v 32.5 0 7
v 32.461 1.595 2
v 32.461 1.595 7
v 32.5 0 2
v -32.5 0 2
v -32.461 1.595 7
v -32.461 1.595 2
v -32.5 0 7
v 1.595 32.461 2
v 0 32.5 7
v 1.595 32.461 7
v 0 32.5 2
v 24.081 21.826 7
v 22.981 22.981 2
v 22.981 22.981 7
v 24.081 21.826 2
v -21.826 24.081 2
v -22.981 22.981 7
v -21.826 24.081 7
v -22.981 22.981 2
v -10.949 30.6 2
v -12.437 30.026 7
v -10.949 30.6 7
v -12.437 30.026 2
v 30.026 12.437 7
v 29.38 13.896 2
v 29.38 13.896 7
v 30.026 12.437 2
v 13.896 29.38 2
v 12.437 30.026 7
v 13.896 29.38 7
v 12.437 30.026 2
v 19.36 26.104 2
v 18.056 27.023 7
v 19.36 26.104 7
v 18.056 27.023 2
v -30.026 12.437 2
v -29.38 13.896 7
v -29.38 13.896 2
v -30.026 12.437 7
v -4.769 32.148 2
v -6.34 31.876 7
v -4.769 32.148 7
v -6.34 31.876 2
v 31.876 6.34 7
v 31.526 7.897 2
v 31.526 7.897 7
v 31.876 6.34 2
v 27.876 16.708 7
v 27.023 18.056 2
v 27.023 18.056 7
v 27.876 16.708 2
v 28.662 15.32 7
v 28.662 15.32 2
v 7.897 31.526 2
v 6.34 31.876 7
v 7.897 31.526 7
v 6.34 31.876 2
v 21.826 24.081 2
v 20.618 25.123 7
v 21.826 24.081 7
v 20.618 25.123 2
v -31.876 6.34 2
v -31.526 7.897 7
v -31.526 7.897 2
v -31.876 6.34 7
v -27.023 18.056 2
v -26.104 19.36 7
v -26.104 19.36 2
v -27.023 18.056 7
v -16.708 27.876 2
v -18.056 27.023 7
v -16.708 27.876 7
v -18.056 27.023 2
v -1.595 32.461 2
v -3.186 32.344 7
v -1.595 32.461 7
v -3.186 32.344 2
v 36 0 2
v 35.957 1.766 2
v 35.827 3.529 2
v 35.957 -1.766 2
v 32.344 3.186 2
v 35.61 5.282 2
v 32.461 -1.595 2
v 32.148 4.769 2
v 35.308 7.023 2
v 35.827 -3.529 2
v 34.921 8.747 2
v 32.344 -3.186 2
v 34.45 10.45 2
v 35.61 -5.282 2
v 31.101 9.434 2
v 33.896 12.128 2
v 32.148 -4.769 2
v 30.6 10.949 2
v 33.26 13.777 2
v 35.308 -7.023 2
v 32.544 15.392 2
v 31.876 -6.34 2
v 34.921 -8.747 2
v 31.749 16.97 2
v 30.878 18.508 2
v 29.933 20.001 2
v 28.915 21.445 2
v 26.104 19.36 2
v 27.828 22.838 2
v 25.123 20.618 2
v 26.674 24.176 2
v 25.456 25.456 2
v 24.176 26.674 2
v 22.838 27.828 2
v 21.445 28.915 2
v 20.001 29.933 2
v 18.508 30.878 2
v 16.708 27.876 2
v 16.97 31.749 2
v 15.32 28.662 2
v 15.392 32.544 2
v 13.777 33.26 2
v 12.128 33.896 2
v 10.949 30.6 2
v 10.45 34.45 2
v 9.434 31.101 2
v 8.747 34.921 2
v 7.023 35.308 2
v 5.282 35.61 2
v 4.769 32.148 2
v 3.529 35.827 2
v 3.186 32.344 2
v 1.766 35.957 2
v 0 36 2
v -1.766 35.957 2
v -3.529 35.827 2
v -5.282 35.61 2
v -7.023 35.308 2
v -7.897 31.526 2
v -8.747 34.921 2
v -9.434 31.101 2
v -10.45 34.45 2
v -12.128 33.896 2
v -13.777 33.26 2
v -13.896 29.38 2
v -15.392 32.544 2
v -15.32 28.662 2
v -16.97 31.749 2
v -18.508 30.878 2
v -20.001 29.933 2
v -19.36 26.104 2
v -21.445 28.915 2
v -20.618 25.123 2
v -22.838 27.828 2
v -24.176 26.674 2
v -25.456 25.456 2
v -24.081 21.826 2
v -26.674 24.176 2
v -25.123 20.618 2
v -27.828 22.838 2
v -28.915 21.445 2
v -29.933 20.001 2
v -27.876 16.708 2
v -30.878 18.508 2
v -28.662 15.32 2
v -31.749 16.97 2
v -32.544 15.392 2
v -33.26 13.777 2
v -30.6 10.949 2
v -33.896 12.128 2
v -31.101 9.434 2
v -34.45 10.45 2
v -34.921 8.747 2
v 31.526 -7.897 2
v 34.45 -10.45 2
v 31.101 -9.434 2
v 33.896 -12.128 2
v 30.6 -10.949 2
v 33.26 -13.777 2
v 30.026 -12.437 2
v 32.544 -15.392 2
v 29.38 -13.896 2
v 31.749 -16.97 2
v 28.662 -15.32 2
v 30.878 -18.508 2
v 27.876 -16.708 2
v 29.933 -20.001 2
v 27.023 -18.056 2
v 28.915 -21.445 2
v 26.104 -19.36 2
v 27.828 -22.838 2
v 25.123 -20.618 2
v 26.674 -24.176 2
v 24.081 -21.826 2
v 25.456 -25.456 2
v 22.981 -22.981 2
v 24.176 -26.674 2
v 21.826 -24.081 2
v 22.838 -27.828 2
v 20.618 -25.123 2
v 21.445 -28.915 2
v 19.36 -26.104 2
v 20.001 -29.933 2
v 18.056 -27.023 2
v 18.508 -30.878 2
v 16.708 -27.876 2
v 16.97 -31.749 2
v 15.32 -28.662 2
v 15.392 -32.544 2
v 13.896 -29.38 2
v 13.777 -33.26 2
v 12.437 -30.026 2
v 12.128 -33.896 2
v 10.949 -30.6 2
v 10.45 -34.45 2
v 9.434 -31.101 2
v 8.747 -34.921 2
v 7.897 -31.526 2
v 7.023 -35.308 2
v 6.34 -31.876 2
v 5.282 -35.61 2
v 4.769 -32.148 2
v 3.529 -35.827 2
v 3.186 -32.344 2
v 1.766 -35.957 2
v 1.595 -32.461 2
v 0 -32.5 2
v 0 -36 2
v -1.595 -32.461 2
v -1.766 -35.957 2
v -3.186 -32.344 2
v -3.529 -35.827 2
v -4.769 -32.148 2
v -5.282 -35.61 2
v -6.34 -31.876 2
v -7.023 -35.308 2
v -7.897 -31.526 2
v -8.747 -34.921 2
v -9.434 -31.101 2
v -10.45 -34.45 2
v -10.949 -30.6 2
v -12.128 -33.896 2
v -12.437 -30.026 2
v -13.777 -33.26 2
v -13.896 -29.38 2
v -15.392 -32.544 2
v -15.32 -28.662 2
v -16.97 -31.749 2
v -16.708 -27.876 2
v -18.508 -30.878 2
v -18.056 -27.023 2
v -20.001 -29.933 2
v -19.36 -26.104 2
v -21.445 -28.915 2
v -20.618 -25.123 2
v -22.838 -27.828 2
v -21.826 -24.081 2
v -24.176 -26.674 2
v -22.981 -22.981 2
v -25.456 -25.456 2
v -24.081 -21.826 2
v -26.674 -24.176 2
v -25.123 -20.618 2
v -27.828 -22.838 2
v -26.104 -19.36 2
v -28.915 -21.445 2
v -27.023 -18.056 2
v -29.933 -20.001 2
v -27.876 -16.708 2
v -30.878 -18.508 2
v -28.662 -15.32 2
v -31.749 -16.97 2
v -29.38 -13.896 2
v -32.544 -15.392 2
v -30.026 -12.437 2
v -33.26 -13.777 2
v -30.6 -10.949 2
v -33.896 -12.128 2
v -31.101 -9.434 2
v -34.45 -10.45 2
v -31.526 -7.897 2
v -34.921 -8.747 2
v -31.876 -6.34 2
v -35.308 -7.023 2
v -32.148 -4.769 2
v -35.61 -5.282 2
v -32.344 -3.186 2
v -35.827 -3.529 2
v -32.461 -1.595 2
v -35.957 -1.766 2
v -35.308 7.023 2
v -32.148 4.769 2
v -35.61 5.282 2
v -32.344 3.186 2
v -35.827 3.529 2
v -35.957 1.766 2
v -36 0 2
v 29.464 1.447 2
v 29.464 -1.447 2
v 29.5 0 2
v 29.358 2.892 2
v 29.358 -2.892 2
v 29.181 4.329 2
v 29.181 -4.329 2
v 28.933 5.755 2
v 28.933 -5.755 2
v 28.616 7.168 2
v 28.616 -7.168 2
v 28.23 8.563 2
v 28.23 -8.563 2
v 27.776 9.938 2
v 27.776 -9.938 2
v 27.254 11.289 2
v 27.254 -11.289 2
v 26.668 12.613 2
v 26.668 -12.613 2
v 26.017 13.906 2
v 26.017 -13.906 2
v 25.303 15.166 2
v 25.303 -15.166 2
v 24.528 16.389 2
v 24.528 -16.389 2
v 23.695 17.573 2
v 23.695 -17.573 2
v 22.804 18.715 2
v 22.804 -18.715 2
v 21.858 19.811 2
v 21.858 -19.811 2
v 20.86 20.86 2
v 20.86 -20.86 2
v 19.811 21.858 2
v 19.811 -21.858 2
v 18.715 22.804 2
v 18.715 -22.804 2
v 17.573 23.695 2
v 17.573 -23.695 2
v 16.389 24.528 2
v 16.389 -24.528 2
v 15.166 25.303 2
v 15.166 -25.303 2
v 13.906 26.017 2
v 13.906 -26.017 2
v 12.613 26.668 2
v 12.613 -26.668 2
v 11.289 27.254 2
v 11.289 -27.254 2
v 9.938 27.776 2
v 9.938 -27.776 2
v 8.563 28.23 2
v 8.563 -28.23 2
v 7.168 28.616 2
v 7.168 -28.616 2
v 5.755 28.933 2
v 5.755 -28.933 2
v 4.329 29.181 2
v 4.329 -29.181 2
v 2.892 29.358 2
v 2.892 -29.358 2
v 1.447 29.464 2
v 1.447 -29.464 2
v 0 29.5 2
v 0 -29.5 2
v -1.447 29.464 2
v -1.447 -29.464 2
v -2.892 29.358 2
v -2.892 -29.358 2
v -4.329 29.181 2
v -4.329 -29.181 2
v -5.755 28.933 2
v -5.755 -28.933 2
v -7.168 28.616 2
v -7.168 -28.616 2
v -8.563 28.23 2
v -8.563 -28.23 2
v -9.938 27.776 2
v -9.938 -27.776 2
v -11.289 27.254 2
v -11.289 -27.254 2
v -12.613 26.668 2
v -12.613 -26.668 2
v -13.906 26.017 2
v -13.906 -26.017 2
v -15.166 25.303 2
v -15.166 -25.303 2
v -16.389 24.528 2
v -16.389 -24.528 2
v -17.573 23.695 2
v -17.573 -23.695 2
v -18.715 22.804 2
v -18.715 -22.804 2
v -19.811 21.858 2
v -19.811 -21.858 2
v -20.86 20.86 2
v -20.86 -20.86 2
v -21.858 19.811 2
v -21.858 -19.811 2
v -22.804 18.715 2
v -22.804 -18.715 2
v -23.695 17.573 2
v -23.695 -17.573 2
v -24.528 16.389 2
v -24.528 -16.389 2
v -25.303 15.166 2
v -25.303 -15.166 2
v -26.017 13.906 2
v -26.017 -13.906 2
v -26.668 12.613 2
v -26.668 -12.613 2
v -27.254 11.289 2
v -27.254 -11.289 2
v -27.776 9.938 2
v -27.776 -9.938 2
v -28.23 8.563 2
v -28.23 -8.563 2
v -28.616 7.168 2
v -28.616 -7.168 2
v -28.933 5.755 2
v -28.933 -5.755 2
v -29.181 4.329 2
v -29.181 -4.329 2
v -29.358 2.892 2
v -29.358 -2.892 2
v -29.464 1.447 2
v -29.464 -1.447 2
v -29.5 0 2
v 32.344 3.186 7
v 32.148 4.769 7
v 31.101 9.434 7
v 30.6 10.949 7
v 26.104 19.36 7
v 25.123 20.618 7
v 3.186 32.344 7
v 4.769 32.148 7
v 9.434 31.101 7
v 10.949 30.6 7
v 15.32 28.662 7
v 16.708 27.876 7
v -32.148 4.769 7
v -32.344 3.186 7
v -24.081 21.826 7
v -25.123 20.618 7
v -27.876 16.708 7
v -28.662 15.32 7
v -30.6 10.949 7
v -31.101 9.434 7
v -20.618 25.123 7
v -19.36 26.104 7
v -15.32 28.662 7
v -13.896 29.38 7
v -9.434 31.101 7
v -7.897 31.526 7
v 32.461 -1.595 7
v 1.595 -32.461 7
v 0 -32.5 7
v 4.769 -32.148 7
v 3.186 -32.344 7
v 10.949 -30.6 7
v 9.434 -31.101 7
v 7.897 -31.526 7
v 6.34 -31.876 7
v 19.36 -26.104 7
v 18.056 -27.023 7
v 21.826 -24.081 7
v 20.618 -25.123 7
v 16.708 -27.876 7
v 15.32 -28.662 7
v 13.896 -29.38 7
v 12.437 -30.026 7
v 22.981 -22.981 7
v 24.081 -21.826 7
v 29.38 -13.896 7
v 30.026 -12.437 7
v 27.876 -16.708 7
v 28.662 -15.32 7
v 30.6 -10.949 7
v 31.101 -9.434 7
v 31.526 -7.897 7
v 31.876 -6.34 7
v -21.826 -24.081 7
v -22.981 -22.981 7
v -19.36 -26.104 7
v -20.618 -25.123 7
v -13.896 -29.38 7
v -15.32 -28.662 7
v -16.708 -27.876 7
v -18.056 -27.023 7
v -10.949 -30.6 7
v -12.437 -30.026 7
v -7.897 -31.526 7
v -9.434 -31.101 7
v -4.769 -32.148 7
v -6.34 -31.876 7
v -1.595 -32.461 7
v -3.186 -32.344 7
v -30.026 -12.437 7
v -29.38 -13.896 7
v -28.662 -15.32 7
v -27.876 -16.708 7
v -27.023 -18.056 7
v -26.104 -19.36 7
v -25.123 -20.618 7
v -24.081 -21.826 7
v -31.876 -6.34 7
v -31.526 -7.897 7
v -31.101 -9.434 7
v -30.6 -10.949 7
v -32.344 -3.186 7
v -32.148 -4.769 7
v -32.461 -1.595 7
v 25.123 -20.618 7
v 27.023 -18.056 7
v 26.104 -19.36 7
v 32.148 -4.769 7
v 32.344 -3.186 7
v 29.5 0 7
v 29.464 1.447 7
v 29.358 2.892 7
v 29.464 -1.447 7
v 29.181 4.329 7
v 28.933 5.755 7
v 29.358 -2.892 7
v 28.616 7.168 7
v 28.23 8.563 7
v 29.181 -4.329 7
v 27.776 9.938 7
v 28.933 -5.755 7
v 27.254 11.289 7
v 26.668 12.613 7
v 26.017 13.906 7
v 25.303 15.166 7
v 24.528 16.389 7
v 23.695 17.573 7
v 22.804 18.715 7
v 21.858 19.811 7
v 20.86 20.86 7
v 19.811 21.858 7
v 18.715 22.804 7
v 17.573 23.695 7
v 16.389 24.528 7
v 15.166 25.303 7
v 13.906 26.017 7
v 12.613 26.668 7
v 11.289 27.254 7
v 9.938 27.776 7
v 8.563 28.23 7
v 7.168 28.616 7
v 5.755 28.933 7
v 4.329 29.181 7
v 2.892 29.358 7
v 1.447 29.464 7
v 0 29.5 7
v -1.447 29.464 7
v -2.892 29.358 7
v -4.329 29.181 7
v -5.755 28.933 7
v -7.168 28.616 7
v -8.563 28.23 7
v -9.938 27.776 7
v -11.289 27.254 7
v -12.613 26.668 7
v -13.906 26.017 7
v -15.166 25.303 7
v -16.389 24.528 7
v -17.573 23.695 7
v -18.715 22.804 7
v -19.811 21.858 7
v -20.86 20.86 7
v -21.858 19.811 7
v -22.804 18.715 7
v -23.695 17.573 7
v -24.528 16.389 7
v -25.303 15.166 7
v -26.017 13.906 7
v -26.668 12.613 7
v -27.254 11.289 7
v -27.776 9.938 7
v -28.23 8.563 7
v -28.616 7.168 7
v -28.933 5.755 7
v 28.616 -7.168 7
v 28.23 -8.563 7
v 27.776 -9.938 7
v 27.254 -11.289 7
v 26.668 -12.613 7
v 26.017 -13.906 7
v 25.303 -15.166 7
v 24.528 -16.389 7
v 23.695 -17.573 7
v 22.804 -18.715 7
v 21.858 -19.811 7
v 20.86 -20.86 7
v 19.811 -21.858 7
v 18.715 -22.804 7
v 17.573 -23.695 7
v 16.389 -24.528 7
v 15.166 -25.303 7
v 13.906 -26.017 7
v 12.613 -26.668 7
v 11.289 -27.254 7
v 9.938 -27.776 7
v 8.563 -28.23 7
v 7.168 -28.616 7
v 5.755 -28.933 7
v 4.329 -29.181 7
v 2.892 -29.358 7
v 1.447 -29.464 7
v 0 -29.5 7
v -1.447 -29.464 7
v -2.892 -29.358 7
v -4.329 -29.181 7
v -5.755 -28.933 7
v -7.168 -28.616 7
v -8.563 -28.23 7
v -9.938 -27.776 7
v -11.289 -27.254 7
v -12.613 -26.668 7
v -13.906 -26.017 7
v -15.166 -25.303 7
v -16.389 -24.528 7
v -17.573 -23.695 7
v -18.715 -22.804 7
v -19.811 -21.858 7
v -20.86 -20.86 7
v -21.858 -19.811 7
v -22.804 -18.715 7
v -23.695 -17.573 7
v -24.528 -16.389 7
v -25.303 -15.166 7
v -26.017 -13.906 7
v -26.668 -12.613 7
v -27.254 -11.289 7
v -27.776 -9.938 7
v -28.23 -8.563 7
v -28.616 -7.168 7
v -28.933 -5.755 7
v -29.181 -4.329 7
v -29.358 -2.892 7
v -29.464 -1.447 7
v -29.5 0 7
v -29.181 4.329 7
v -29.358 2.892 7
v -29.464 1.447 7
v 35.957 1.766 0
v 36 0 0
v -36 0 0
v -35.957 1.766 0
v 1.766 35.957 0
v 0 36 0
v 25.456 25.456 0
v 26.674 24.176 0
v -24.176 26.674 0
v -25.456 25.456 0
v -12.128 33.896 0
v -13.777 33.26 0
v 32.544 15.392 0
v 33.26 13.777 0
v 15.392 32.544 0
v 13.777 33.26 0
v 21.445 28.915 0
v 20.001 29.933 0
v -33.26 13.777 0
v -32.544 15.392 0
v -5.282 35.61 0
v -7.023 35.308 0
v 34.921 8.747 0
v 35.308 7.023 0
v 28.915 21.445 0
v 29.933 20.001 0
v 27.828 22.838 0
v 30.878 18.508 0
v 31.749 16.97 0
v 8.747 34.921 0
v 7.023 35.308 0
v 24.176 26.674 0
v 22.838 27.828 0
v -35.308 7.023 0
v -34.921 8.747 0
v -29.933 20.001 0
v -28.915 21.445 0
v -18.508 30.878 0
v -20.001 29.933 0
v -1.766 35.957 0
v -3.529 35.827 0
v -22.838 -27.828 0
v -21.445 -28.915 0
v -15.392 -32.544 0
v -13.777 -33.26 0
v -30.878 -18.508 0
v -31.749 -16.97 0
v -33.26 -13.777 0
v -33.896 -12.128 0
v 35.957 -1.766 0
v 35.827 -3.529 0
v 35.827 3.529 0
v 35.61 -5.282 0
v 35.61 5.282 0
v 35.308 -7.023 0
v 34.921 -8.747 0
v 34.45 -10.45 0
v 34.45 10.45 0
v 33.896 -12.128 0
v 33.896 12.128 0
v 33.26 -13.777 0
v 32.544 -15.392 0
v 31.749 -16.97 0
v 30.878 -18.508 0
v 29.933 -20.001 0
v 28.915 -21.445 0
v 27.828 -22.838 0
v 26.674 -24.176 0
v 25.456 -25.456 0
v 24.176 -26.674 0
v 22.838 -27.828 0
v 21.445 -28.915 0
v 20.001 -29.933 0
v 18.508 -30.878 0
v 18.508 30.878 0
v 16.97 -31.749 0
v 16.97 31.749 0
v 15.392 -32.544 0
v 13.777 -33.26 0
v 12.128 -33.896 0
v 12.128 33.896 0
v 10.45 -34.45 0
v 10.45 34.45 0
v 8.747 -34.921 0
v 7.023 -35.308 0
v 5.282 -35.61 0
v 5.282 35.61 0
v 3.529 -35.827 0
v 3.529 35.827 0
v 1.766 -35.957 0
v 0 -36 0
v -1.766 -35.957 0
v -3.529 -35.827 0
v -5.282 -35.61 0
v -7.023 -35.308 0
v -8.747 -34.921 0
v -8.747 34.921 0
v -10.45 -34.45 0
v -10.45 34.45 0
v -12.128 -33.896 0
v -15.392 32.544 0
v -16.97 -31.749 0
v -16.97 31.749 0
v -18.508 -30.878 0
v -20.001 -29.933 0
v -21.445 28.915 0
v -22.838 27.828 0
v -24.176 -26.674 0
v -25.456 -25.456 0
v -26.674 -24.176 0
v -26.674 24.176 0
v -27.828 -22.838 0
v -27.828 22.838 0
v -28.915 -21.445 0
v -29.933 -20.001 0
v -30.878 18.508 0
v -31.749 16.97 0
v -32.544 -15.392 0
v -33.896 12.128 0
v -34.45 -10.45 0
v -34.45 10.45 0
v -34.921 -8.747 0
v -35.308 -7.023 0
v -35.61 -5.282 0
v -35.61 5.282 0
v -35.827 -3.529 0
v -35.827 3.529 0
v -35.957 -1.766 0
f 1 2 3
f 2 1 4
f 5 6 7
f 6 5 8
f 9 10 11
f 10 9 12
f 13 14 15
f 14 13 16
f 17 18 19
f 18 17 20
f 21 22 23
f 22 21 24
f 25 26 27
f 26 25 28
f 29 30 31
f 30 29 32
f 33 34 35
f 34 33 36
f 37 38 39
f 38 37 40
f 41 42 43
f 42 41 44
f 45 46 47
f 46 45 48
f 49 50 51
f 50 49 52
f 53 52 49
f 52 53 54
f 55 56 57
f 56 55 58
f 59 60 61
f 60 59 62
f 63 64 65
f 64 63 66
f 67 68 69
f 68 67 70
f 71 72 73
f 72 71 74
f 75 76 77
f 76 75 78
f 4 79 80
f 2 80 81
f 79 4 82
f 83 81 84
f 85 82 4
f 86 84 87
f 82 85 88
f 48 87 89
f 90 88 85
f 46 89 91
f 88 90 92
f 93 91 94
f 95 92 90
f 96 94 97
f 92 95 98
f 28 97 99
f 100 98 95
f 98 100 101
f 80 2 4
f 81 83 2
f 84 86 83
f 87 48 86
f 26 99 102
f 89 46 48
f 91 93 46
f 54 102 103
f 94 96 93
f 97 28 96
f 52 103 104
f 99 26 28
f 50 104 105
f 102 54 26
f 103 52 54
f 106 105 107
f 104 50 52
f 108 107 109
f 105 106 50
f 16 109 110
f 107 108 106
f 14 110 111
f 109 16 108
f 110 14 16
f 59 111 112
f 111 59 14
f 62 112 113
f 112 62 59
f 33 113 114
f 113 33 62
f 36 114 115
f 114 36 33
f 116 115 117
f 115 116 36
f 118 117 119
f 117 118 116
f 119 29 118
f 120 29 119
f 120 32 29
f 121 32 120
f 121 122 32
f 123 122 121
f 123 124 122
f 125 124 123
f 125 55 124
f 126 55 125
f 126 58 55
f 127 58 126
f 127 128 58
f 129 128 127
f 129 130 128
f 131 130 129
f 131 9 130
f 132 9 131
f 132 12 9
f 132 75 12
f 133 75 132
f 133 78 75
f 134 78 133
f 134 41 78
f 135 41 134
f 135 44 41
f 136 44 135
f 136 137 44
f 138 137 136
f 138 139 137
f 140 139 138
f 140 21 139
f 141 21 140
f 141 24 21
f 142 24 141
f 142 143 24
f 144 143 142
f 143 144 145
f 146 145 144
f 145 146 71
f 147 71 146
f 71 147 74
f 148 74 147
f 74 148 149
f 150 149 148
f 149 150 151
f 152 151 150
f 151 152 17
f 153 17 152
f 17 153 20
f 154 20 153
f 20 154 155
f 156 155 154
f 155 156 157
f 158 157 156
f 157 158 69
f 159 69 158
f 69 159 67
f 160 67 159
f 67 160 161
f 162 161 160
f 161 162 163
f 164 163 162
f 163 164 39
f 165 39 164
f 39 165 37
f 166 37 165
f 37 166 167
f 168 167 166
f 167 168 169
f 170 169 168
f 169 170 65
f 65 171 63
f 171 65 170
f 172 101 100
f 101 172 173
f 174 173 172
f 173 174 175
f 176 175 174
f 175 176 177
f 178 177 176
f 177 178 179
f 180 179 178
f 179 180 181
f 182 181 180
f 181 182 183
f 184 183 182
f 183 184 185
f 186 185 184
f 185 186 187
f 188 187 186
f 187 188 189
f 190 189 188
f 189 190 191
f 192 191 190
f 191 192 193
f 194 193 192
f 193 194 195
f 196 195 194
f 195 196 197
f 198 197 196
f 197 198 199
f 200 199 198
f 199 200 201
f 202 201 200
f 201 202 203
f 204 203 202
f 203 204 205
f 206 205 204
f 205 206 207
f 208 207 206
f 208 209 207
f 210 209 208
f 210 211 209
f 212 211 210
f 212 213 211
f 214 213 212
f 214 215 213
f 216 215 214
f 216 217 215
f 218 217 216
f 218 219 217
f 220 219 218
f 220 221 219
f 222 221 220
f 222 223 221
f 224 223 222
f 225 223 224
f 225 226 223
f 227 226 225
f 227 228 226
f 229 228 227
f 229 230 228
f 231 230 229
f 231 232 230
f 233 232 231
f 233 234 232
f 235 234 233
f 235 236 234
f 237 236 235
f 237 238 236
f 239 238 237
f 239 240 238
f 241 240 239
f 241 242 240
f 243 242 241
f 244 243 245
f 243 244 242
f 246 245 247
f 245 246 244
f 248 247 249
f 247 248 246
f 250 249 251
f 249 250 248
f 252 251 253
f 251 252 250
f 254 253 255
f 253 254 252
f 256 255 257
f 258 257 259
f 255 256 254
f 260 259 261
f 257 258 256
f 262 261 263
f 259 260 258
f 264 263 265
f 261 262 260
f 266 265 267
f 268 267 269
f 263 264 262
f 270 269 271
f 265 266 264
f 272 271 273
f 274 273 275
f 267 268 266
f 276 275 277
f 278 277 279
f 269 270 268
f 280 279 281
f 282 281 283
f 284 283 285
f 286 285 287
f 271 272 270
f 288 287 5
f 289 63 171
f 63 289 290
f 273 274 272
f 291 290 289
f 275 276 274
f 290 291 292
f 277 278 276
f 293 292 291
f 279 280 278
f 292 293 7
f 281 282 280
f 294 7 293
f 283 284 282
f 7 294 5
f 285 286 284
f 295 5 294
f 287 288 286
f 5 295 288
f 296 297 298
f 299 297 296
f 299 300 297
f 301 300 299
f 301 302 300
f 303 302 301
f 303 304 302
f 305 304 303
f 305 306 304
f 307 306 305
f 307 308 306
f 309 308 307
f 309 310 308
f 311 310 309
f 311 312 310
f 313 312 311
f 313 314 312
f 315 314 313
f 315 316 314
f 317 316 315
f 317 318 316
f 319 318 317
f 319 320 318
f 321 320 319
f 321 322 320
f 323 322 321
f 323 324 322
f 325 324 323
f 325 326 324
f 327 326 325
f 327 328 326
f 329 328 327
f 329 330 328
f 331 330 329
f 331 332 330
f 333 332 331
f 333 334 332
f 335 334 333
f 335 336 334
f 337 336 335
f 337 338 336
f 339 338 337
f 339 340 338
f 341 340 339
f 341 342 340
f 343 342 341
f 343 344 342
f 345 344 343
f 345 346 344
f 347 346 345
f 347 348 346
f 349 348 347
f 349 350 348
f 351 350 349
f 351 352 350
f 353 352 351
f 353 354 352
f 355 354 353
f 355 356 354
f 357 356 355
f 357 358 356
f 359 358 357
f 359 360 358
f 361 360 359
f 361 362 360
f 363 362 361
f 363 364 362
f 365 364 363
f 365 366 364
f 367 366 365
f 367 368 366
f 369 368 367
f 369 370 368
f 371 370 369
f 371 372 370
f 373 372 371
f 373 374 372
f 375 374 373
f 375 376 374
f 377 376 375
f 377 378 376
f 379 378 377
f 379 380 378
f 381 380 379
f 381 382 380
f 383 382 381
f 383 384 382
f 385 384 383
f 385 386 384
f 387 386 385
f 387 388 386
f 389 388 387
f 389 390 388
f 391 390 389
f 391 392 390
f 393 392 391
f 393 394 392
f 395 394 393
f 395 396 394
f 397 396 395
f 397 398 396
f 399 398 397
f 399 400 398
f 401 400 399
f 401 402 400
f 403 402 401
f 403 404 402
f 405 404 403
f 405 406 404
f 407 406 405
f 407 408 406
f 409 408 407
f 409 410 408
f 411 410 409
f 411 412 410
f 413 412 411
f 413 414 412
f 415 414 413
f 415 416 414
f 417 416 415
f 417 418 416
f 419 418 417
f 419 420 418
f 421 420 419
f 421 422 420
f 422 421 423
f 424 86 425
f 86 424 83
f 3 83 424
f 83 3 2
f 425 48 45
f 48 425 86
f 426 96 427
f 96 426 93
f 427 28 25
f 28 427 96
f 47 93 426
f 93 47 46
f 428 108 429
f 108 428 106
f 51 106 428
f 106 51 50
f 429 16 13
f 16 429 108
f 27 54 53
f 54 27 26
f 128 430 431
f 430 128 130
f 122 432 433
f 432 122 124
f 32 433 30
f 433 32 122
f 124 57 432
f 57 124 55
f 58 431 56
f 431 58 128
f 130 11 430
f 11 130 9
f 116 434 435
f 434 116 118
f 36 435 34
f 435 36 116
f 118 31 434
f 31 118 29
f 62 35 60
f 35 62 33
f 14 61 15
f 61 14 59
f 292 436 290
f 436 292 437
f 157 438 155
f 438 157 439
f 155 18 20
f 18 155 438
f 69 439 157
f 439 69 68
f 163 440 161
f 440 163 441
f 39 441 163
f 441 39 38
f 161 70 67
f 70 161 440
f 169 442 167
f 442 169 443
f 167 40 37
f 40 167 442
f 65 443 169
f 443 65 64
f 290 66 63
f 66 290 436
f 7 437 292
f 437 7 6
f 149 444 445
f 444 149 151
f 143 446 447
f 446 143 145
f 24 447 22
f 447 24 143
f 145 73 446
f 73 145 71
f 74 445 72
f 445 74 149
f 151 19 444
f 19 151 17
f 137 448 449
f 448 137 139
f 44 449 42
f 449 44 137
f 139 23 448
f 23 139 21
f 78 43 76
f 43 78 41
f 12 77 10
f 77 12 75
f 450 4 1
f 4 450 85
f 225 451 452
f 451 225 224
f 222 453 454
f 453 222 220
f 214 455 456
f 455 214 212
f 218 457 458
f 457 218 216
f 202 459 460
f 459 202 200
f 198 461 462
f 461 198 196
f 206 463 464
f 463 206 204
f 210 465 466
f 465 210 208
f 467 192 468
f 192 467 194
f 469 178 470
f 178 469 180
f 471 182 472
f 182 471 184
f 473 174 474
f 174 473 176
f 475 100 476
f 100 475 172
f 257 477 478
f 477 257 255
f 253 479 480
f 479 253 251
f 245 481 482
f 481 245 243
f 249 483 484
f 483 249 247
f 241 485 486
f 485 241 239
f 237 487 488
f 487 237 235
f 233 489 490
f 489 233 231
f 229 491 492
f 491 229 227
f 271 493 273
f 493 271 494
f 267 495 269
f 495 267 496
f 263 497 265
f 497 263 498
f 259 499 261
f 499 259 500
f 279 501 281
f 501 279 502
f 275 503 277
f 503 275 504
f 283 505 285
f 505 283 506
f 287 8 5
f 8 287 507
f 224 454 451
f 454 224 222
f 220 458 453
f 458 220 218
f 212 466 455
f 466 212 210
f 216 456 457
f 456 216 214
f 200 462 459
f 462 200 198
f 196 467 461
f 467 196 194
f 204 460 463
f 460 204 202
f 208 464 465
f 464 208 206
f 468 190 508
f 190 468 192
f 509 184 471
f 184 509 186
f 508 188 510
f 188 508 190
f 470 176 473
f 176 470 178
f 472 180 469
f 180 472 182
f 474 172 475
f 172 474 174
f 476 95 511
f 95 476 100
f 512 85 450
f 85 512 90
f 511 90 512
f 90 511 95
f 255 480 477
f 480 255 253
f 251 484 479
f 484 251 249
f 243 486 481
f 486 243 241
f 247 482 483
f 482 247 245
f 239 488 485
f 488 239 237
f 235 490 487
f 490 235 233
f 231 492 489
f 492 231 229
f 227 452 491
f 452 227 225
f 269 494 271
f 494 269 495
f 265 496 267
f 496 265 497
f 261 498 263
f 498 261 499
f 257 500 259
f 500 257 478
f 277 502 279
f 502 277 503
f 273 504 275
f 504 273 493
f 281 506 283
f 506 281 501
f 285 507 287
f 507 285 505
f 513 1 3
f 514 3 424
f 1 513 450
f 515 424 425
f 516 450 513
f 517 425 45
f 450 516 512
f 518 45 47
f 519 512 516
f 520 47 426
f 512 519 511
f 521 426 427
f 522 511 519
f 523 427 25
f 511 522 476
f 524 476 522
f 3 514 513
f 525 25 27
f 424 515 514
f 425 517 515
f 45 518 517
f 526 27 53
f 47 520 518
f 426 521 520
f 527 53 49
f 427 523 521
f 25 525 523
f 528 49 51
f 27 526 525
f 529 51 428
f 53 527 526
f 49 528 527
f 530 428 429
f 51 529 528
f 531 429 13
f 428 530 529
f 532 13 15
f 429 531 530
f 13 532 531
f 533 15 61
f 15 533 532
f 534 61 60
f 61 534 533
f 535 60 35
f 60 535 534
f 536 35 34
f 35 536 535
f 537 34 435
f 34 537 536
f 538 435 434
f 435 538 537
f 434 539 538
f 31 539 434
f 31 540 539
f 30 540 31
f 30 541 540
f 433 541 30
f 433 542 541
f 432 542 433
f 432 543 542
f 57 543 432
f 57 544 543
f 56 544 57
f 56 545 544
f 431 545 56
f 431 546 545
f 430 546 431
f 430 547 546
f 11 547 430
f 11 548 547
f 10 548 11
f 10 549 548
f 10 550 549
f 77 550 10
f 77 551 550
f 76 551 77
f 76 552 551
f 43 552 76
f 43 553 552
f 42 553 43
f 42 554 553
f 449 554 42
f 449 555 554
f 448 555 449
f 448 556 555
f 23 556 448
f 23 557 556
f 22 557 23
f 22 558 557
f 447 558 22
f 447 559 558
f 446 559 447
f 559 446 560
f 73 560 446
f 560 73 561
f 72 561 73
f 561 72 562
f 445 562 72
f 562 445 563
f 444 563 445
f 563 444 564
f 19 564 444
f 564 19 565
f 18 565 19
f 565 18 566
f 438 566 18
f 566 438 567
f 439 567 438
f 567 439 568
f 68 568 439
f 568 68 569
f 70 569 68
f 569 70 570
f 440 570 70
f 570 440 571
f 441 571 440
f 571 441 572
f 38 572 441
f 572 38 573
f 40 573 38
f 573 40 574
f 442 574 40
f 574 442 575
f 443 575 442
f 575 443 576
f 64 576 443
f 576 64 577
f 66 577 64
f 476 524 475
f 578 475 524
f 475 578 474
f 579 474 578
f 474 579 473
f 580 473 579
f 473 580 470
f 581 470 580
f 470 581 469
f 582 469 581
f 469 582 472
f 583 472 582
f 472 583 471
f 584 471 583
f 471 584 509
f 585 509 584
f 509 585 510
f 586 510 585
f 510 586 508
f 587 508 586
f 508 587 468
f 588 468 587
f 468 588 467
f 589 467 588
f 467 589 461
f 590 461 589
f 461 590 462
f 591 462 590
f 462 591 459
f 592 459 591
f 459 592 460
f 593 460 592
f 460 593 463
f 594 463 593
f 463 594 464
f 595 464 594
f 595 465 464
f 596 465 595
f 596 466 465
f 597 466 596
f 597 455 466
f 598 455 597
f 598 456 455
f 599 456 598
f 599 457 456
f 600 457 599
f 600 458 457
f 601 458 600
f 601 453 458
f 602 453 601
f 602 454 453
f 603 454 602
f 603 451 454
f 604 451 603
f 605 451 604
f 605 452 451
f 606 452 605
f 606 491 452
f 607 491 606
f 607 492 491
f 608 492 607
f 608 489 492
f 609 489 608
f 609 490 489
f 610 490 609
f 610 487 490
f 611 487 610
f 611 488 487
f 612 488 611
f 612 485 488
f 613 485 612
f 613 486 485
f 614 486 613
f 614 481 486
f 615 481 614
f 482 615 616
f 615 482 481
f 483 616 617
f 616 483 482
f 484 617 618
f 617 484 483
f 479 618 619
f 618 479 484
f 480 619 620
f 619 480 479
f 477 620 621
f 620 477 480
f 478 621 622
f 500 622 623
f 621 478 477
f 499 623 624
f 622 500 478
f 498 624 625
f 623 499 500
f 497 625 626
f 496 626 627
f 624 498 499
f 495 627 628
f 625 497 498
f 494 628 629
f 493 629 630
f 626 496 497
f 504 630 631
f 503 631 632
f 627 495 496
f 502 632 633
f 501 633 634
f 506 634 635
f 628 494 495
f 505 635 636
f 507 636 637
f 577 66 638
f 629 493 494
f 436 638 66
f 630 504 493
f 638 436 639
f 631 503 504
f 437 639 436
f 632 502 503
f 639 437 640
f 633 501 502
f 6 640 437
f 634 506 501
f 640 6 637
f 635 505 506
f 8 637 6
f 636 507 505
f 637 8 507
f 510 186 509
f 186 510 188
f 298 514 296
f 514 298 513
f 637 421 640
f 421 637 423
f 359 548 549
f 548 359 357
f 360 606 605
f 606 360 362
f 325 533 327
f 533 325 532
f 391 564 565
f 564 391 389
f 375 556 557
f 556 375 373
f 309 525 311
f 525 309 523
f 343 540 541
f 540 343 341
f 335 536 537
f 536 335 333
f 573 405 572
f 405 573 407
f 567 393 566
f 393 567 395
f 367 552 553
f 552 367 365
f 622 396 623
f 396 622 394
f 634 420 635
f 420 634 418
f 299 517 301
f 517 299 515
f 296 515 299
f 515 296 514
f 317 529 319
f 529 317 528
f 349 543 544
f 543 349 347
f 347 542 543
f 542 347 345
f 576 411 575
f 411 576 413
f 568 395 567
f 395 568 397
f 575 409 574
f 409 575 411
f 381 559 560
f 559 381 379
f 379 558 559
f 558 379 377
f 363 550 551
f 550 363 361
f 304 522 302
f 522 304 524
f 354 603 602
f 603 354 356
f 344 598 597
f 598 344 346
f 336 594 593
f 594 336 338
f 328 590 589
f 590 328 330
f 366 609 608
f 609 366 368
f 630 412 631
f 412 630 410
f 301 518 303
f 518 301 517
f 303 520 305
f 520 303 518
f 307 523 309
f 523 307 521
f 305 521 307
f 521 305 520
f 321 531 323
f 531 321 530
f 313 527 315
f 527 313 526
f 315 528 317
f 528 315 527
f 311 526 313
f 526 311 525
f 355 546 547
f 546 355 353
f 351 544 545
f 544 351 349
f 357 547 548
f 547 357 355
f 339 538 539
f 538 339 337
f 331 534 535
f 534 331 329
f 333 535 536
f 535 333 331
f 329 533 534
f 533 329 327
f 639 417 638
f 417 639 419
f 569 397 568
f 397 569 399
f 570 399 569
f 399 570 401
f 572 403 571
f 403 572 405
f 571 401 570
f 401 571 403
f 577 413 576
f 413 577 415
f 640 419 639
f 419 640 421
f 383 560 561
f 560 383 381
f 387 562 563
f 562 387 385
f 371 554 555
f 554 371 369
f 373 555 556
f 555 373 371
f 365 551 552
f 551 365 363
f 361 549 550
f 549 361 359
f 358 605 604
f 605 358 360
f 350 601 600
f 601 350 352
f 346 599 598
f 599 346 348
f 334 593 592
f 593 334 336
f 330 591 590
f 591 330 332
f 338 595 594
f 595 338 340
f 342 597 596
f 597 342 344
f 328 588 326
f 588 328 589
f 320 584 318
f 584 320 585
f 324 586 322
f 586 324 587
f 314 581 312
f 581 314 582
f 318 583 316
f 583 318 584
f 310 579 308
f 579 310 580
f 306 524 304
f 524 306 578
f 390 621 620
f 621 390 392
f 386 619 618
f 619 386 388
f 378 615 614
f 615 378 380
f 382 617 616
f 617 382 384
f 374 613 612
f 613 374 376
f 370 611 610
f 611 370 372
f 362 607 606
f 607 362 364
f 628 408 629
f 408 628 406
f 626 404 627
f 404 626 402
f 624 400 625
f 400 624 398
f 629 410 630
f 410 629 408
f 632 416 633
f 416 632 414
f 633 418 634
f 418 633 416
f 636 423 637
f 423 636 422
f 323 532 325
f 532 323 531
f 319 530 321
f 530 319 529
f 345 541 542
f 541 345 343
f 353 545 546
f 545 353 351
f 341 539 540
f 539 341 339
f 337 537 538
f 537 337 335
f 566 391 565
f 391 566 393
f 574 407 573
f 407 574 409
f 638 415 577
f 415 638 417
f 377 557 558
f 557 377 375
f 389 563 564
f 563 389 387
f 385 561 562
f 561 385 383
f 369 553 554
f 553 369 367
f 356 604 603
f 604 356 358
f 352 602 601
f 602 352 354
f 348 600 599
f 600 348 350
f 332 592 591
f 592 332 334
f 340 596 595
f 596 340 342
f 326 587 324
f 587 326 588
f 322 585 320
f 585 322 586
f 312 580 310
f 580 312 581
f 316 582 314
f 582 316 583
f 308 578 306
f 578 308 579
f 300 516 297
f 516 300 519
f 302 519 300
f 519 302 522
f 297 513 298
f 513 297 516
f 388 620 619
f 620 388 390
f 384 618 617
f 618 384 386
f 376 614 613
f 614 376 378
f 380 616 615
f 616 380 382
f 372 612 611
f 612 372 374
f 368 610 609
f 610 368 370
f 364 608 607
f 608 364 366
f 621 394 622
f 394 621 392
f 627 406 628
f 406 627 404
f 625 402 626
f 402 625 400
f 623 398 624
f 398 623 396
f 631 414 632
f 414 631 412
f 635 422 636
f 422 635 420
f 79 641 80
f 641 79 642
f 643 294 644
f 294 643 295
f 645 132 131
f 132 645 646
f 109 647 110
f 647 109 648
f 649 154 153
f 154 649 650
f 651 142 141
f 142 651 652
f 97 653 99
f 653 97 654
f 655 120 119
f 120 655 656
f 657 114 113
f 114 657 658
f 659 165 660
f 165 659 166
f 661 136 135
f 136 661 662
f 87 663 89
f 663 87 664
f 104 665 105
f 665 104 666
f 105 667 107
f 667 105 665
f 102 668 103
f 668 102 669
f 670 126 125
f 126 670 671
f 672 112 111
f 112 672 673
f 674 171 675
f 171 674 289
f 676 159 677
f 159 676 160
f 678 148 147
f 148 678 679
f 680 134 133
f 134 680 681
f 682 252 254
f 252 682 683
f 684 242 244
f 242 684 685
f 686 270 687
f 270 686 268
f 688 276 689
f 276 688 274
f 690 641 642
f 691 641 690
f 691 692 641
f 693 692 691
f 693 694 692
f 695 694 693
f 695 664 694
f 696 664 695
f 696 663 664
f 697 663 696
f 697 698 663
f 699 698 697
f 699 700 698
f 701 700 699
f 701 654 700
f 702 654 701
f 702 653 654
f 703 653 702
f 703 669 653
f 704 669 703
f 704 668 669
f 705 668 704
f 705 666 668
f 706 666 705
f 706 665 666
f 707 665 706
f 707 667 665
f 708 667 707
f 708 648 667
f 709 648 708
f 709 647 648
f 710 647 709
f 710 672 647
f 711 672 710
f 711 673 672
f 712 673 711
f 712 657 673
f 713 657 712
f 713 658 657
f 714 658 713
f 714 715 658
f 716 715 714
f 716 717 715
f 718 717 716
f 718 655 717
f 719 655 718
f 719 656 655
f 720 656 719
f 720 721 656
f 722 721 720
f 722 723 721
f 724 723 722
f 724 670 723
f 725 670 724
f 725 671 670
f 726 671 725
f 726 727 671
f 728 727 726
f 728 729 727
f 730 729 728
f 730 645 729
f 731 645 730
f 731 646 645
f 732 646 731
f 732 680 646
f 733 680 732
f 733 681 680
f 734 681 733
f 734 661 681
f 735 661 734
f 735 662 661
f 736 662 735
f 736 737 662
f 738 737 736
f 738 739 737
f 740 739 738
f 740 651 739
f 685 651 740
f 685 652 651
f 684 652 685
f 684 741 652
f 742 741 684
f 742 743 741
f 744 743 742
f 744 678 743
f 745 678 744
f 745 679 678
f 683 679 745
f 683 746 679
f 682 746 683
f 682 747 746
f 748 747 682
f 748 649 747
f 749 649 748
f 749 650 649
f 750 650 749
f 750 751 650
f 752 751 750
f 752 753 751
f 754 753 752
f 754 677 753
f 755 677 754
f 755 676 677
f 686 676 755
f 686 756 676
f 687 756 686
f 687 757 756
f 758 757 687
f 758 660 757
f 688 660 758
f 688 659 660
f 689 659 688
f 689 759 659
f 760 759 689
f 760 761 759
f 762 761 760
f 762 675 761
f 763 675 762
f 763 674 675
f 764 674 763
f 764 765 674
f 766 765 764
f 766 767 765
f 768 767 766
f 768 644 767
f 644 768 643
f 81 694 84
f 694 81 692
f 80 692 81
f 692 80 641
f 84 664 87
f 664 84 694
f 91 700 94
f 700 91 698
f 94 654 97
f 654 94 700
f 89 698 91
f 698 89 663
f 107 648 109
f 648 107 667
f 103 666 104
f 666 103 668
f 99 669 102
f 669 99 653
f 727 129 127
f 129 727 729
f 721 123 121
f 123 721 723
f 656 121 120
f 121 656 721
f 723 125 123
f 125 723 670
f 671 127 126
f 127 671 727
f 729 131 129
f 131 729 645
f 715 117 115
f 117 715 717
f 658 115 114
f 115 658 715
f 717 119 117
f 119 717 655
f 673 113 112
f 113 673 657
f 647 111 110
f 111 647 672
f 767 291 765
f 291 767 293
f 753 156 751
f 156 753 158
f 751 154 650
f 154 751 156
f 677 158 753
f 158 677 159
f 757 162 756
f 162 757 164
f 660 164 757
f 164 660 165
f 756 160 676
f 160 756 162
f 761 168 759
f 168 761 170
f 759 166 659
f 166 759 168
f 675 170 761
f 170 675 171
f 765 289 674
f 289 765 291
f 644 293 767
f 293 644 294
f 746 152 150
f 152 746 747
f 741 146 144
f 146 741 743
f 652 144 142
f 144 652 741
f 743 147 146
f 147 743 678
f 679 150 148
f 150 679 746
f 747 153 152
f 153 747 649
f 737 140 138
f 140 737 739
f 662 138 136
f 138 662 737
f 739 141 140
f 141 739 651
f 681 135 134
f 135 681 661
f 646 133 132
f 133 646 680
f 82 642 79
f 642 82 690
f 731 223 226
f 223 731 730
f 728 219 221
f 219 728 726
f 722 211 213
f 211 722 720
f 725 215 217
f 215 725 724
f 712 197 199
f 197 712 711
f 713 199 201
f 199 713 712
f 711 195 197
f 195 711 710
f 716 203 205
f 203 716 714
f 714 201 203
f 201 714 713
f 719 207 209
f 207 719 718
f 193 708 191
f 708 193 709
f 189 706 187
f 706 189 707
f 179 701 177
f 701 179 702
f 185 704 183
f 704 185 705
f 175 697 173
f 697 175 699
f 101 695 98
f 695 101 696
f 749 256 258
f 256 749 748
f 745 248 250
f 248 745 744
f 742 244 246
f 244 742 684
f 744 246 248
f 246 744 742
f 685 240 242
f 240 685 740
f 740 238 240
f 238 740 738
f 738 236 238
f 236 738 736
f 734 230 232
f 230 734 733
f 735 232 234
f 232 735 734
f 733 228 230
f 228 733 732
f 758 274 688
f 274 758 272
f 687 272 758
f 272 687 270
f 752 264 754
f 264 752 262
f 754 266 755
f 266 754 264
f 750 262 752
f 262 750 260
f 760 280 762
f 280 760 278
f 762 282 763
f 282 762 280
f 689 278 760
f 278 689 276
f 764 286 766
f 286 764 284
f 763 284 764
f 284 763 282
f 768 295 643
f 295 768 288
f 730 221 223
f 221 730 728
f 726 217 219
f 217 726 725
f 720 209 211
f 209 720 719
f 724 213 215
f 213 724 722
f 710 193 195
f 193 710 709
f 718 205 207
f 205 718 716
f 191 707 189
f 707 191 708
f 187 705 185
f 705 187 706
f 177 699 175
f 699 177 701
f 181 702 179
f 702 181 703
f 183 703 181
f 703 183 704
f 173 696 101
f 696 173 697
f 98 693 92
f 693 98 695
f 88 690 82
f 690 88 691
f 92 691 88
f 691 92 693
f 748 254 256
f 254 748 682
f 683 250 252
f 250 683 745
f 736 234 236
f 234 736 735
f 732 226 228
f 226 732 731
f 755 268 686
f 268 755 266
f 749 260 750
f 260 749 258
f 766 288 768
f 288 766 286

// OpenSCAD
// ============================================================
// Hamster Habitat — Yem Kapagi (Suluk Askisi / Yem Kapisi icin)
// Flans: r=36mm, 2mm kalinlik — panel yuzeyine oturur
// Plug:  r=32.5mm, 5mm derinlik — deliğe exact fit girer
// ============================================================
$fn = 128;

module kapak_yem() {
  color("lightsalmon", 0.9)
  union() {
    // flans — panel yuzeyinde durur
    cylinder(r=36, h=2);
    // plug — deliğe girer, 3mm et kalinlikli ic bos halka
    translate([0, 0, 2])
      difference() {
        cylinder(r=32.5, h=5);
        translate([0, 0, -0.1]) cylinder(r=29.5, h=5.2);
      }
  }
}

kapak_yem();
